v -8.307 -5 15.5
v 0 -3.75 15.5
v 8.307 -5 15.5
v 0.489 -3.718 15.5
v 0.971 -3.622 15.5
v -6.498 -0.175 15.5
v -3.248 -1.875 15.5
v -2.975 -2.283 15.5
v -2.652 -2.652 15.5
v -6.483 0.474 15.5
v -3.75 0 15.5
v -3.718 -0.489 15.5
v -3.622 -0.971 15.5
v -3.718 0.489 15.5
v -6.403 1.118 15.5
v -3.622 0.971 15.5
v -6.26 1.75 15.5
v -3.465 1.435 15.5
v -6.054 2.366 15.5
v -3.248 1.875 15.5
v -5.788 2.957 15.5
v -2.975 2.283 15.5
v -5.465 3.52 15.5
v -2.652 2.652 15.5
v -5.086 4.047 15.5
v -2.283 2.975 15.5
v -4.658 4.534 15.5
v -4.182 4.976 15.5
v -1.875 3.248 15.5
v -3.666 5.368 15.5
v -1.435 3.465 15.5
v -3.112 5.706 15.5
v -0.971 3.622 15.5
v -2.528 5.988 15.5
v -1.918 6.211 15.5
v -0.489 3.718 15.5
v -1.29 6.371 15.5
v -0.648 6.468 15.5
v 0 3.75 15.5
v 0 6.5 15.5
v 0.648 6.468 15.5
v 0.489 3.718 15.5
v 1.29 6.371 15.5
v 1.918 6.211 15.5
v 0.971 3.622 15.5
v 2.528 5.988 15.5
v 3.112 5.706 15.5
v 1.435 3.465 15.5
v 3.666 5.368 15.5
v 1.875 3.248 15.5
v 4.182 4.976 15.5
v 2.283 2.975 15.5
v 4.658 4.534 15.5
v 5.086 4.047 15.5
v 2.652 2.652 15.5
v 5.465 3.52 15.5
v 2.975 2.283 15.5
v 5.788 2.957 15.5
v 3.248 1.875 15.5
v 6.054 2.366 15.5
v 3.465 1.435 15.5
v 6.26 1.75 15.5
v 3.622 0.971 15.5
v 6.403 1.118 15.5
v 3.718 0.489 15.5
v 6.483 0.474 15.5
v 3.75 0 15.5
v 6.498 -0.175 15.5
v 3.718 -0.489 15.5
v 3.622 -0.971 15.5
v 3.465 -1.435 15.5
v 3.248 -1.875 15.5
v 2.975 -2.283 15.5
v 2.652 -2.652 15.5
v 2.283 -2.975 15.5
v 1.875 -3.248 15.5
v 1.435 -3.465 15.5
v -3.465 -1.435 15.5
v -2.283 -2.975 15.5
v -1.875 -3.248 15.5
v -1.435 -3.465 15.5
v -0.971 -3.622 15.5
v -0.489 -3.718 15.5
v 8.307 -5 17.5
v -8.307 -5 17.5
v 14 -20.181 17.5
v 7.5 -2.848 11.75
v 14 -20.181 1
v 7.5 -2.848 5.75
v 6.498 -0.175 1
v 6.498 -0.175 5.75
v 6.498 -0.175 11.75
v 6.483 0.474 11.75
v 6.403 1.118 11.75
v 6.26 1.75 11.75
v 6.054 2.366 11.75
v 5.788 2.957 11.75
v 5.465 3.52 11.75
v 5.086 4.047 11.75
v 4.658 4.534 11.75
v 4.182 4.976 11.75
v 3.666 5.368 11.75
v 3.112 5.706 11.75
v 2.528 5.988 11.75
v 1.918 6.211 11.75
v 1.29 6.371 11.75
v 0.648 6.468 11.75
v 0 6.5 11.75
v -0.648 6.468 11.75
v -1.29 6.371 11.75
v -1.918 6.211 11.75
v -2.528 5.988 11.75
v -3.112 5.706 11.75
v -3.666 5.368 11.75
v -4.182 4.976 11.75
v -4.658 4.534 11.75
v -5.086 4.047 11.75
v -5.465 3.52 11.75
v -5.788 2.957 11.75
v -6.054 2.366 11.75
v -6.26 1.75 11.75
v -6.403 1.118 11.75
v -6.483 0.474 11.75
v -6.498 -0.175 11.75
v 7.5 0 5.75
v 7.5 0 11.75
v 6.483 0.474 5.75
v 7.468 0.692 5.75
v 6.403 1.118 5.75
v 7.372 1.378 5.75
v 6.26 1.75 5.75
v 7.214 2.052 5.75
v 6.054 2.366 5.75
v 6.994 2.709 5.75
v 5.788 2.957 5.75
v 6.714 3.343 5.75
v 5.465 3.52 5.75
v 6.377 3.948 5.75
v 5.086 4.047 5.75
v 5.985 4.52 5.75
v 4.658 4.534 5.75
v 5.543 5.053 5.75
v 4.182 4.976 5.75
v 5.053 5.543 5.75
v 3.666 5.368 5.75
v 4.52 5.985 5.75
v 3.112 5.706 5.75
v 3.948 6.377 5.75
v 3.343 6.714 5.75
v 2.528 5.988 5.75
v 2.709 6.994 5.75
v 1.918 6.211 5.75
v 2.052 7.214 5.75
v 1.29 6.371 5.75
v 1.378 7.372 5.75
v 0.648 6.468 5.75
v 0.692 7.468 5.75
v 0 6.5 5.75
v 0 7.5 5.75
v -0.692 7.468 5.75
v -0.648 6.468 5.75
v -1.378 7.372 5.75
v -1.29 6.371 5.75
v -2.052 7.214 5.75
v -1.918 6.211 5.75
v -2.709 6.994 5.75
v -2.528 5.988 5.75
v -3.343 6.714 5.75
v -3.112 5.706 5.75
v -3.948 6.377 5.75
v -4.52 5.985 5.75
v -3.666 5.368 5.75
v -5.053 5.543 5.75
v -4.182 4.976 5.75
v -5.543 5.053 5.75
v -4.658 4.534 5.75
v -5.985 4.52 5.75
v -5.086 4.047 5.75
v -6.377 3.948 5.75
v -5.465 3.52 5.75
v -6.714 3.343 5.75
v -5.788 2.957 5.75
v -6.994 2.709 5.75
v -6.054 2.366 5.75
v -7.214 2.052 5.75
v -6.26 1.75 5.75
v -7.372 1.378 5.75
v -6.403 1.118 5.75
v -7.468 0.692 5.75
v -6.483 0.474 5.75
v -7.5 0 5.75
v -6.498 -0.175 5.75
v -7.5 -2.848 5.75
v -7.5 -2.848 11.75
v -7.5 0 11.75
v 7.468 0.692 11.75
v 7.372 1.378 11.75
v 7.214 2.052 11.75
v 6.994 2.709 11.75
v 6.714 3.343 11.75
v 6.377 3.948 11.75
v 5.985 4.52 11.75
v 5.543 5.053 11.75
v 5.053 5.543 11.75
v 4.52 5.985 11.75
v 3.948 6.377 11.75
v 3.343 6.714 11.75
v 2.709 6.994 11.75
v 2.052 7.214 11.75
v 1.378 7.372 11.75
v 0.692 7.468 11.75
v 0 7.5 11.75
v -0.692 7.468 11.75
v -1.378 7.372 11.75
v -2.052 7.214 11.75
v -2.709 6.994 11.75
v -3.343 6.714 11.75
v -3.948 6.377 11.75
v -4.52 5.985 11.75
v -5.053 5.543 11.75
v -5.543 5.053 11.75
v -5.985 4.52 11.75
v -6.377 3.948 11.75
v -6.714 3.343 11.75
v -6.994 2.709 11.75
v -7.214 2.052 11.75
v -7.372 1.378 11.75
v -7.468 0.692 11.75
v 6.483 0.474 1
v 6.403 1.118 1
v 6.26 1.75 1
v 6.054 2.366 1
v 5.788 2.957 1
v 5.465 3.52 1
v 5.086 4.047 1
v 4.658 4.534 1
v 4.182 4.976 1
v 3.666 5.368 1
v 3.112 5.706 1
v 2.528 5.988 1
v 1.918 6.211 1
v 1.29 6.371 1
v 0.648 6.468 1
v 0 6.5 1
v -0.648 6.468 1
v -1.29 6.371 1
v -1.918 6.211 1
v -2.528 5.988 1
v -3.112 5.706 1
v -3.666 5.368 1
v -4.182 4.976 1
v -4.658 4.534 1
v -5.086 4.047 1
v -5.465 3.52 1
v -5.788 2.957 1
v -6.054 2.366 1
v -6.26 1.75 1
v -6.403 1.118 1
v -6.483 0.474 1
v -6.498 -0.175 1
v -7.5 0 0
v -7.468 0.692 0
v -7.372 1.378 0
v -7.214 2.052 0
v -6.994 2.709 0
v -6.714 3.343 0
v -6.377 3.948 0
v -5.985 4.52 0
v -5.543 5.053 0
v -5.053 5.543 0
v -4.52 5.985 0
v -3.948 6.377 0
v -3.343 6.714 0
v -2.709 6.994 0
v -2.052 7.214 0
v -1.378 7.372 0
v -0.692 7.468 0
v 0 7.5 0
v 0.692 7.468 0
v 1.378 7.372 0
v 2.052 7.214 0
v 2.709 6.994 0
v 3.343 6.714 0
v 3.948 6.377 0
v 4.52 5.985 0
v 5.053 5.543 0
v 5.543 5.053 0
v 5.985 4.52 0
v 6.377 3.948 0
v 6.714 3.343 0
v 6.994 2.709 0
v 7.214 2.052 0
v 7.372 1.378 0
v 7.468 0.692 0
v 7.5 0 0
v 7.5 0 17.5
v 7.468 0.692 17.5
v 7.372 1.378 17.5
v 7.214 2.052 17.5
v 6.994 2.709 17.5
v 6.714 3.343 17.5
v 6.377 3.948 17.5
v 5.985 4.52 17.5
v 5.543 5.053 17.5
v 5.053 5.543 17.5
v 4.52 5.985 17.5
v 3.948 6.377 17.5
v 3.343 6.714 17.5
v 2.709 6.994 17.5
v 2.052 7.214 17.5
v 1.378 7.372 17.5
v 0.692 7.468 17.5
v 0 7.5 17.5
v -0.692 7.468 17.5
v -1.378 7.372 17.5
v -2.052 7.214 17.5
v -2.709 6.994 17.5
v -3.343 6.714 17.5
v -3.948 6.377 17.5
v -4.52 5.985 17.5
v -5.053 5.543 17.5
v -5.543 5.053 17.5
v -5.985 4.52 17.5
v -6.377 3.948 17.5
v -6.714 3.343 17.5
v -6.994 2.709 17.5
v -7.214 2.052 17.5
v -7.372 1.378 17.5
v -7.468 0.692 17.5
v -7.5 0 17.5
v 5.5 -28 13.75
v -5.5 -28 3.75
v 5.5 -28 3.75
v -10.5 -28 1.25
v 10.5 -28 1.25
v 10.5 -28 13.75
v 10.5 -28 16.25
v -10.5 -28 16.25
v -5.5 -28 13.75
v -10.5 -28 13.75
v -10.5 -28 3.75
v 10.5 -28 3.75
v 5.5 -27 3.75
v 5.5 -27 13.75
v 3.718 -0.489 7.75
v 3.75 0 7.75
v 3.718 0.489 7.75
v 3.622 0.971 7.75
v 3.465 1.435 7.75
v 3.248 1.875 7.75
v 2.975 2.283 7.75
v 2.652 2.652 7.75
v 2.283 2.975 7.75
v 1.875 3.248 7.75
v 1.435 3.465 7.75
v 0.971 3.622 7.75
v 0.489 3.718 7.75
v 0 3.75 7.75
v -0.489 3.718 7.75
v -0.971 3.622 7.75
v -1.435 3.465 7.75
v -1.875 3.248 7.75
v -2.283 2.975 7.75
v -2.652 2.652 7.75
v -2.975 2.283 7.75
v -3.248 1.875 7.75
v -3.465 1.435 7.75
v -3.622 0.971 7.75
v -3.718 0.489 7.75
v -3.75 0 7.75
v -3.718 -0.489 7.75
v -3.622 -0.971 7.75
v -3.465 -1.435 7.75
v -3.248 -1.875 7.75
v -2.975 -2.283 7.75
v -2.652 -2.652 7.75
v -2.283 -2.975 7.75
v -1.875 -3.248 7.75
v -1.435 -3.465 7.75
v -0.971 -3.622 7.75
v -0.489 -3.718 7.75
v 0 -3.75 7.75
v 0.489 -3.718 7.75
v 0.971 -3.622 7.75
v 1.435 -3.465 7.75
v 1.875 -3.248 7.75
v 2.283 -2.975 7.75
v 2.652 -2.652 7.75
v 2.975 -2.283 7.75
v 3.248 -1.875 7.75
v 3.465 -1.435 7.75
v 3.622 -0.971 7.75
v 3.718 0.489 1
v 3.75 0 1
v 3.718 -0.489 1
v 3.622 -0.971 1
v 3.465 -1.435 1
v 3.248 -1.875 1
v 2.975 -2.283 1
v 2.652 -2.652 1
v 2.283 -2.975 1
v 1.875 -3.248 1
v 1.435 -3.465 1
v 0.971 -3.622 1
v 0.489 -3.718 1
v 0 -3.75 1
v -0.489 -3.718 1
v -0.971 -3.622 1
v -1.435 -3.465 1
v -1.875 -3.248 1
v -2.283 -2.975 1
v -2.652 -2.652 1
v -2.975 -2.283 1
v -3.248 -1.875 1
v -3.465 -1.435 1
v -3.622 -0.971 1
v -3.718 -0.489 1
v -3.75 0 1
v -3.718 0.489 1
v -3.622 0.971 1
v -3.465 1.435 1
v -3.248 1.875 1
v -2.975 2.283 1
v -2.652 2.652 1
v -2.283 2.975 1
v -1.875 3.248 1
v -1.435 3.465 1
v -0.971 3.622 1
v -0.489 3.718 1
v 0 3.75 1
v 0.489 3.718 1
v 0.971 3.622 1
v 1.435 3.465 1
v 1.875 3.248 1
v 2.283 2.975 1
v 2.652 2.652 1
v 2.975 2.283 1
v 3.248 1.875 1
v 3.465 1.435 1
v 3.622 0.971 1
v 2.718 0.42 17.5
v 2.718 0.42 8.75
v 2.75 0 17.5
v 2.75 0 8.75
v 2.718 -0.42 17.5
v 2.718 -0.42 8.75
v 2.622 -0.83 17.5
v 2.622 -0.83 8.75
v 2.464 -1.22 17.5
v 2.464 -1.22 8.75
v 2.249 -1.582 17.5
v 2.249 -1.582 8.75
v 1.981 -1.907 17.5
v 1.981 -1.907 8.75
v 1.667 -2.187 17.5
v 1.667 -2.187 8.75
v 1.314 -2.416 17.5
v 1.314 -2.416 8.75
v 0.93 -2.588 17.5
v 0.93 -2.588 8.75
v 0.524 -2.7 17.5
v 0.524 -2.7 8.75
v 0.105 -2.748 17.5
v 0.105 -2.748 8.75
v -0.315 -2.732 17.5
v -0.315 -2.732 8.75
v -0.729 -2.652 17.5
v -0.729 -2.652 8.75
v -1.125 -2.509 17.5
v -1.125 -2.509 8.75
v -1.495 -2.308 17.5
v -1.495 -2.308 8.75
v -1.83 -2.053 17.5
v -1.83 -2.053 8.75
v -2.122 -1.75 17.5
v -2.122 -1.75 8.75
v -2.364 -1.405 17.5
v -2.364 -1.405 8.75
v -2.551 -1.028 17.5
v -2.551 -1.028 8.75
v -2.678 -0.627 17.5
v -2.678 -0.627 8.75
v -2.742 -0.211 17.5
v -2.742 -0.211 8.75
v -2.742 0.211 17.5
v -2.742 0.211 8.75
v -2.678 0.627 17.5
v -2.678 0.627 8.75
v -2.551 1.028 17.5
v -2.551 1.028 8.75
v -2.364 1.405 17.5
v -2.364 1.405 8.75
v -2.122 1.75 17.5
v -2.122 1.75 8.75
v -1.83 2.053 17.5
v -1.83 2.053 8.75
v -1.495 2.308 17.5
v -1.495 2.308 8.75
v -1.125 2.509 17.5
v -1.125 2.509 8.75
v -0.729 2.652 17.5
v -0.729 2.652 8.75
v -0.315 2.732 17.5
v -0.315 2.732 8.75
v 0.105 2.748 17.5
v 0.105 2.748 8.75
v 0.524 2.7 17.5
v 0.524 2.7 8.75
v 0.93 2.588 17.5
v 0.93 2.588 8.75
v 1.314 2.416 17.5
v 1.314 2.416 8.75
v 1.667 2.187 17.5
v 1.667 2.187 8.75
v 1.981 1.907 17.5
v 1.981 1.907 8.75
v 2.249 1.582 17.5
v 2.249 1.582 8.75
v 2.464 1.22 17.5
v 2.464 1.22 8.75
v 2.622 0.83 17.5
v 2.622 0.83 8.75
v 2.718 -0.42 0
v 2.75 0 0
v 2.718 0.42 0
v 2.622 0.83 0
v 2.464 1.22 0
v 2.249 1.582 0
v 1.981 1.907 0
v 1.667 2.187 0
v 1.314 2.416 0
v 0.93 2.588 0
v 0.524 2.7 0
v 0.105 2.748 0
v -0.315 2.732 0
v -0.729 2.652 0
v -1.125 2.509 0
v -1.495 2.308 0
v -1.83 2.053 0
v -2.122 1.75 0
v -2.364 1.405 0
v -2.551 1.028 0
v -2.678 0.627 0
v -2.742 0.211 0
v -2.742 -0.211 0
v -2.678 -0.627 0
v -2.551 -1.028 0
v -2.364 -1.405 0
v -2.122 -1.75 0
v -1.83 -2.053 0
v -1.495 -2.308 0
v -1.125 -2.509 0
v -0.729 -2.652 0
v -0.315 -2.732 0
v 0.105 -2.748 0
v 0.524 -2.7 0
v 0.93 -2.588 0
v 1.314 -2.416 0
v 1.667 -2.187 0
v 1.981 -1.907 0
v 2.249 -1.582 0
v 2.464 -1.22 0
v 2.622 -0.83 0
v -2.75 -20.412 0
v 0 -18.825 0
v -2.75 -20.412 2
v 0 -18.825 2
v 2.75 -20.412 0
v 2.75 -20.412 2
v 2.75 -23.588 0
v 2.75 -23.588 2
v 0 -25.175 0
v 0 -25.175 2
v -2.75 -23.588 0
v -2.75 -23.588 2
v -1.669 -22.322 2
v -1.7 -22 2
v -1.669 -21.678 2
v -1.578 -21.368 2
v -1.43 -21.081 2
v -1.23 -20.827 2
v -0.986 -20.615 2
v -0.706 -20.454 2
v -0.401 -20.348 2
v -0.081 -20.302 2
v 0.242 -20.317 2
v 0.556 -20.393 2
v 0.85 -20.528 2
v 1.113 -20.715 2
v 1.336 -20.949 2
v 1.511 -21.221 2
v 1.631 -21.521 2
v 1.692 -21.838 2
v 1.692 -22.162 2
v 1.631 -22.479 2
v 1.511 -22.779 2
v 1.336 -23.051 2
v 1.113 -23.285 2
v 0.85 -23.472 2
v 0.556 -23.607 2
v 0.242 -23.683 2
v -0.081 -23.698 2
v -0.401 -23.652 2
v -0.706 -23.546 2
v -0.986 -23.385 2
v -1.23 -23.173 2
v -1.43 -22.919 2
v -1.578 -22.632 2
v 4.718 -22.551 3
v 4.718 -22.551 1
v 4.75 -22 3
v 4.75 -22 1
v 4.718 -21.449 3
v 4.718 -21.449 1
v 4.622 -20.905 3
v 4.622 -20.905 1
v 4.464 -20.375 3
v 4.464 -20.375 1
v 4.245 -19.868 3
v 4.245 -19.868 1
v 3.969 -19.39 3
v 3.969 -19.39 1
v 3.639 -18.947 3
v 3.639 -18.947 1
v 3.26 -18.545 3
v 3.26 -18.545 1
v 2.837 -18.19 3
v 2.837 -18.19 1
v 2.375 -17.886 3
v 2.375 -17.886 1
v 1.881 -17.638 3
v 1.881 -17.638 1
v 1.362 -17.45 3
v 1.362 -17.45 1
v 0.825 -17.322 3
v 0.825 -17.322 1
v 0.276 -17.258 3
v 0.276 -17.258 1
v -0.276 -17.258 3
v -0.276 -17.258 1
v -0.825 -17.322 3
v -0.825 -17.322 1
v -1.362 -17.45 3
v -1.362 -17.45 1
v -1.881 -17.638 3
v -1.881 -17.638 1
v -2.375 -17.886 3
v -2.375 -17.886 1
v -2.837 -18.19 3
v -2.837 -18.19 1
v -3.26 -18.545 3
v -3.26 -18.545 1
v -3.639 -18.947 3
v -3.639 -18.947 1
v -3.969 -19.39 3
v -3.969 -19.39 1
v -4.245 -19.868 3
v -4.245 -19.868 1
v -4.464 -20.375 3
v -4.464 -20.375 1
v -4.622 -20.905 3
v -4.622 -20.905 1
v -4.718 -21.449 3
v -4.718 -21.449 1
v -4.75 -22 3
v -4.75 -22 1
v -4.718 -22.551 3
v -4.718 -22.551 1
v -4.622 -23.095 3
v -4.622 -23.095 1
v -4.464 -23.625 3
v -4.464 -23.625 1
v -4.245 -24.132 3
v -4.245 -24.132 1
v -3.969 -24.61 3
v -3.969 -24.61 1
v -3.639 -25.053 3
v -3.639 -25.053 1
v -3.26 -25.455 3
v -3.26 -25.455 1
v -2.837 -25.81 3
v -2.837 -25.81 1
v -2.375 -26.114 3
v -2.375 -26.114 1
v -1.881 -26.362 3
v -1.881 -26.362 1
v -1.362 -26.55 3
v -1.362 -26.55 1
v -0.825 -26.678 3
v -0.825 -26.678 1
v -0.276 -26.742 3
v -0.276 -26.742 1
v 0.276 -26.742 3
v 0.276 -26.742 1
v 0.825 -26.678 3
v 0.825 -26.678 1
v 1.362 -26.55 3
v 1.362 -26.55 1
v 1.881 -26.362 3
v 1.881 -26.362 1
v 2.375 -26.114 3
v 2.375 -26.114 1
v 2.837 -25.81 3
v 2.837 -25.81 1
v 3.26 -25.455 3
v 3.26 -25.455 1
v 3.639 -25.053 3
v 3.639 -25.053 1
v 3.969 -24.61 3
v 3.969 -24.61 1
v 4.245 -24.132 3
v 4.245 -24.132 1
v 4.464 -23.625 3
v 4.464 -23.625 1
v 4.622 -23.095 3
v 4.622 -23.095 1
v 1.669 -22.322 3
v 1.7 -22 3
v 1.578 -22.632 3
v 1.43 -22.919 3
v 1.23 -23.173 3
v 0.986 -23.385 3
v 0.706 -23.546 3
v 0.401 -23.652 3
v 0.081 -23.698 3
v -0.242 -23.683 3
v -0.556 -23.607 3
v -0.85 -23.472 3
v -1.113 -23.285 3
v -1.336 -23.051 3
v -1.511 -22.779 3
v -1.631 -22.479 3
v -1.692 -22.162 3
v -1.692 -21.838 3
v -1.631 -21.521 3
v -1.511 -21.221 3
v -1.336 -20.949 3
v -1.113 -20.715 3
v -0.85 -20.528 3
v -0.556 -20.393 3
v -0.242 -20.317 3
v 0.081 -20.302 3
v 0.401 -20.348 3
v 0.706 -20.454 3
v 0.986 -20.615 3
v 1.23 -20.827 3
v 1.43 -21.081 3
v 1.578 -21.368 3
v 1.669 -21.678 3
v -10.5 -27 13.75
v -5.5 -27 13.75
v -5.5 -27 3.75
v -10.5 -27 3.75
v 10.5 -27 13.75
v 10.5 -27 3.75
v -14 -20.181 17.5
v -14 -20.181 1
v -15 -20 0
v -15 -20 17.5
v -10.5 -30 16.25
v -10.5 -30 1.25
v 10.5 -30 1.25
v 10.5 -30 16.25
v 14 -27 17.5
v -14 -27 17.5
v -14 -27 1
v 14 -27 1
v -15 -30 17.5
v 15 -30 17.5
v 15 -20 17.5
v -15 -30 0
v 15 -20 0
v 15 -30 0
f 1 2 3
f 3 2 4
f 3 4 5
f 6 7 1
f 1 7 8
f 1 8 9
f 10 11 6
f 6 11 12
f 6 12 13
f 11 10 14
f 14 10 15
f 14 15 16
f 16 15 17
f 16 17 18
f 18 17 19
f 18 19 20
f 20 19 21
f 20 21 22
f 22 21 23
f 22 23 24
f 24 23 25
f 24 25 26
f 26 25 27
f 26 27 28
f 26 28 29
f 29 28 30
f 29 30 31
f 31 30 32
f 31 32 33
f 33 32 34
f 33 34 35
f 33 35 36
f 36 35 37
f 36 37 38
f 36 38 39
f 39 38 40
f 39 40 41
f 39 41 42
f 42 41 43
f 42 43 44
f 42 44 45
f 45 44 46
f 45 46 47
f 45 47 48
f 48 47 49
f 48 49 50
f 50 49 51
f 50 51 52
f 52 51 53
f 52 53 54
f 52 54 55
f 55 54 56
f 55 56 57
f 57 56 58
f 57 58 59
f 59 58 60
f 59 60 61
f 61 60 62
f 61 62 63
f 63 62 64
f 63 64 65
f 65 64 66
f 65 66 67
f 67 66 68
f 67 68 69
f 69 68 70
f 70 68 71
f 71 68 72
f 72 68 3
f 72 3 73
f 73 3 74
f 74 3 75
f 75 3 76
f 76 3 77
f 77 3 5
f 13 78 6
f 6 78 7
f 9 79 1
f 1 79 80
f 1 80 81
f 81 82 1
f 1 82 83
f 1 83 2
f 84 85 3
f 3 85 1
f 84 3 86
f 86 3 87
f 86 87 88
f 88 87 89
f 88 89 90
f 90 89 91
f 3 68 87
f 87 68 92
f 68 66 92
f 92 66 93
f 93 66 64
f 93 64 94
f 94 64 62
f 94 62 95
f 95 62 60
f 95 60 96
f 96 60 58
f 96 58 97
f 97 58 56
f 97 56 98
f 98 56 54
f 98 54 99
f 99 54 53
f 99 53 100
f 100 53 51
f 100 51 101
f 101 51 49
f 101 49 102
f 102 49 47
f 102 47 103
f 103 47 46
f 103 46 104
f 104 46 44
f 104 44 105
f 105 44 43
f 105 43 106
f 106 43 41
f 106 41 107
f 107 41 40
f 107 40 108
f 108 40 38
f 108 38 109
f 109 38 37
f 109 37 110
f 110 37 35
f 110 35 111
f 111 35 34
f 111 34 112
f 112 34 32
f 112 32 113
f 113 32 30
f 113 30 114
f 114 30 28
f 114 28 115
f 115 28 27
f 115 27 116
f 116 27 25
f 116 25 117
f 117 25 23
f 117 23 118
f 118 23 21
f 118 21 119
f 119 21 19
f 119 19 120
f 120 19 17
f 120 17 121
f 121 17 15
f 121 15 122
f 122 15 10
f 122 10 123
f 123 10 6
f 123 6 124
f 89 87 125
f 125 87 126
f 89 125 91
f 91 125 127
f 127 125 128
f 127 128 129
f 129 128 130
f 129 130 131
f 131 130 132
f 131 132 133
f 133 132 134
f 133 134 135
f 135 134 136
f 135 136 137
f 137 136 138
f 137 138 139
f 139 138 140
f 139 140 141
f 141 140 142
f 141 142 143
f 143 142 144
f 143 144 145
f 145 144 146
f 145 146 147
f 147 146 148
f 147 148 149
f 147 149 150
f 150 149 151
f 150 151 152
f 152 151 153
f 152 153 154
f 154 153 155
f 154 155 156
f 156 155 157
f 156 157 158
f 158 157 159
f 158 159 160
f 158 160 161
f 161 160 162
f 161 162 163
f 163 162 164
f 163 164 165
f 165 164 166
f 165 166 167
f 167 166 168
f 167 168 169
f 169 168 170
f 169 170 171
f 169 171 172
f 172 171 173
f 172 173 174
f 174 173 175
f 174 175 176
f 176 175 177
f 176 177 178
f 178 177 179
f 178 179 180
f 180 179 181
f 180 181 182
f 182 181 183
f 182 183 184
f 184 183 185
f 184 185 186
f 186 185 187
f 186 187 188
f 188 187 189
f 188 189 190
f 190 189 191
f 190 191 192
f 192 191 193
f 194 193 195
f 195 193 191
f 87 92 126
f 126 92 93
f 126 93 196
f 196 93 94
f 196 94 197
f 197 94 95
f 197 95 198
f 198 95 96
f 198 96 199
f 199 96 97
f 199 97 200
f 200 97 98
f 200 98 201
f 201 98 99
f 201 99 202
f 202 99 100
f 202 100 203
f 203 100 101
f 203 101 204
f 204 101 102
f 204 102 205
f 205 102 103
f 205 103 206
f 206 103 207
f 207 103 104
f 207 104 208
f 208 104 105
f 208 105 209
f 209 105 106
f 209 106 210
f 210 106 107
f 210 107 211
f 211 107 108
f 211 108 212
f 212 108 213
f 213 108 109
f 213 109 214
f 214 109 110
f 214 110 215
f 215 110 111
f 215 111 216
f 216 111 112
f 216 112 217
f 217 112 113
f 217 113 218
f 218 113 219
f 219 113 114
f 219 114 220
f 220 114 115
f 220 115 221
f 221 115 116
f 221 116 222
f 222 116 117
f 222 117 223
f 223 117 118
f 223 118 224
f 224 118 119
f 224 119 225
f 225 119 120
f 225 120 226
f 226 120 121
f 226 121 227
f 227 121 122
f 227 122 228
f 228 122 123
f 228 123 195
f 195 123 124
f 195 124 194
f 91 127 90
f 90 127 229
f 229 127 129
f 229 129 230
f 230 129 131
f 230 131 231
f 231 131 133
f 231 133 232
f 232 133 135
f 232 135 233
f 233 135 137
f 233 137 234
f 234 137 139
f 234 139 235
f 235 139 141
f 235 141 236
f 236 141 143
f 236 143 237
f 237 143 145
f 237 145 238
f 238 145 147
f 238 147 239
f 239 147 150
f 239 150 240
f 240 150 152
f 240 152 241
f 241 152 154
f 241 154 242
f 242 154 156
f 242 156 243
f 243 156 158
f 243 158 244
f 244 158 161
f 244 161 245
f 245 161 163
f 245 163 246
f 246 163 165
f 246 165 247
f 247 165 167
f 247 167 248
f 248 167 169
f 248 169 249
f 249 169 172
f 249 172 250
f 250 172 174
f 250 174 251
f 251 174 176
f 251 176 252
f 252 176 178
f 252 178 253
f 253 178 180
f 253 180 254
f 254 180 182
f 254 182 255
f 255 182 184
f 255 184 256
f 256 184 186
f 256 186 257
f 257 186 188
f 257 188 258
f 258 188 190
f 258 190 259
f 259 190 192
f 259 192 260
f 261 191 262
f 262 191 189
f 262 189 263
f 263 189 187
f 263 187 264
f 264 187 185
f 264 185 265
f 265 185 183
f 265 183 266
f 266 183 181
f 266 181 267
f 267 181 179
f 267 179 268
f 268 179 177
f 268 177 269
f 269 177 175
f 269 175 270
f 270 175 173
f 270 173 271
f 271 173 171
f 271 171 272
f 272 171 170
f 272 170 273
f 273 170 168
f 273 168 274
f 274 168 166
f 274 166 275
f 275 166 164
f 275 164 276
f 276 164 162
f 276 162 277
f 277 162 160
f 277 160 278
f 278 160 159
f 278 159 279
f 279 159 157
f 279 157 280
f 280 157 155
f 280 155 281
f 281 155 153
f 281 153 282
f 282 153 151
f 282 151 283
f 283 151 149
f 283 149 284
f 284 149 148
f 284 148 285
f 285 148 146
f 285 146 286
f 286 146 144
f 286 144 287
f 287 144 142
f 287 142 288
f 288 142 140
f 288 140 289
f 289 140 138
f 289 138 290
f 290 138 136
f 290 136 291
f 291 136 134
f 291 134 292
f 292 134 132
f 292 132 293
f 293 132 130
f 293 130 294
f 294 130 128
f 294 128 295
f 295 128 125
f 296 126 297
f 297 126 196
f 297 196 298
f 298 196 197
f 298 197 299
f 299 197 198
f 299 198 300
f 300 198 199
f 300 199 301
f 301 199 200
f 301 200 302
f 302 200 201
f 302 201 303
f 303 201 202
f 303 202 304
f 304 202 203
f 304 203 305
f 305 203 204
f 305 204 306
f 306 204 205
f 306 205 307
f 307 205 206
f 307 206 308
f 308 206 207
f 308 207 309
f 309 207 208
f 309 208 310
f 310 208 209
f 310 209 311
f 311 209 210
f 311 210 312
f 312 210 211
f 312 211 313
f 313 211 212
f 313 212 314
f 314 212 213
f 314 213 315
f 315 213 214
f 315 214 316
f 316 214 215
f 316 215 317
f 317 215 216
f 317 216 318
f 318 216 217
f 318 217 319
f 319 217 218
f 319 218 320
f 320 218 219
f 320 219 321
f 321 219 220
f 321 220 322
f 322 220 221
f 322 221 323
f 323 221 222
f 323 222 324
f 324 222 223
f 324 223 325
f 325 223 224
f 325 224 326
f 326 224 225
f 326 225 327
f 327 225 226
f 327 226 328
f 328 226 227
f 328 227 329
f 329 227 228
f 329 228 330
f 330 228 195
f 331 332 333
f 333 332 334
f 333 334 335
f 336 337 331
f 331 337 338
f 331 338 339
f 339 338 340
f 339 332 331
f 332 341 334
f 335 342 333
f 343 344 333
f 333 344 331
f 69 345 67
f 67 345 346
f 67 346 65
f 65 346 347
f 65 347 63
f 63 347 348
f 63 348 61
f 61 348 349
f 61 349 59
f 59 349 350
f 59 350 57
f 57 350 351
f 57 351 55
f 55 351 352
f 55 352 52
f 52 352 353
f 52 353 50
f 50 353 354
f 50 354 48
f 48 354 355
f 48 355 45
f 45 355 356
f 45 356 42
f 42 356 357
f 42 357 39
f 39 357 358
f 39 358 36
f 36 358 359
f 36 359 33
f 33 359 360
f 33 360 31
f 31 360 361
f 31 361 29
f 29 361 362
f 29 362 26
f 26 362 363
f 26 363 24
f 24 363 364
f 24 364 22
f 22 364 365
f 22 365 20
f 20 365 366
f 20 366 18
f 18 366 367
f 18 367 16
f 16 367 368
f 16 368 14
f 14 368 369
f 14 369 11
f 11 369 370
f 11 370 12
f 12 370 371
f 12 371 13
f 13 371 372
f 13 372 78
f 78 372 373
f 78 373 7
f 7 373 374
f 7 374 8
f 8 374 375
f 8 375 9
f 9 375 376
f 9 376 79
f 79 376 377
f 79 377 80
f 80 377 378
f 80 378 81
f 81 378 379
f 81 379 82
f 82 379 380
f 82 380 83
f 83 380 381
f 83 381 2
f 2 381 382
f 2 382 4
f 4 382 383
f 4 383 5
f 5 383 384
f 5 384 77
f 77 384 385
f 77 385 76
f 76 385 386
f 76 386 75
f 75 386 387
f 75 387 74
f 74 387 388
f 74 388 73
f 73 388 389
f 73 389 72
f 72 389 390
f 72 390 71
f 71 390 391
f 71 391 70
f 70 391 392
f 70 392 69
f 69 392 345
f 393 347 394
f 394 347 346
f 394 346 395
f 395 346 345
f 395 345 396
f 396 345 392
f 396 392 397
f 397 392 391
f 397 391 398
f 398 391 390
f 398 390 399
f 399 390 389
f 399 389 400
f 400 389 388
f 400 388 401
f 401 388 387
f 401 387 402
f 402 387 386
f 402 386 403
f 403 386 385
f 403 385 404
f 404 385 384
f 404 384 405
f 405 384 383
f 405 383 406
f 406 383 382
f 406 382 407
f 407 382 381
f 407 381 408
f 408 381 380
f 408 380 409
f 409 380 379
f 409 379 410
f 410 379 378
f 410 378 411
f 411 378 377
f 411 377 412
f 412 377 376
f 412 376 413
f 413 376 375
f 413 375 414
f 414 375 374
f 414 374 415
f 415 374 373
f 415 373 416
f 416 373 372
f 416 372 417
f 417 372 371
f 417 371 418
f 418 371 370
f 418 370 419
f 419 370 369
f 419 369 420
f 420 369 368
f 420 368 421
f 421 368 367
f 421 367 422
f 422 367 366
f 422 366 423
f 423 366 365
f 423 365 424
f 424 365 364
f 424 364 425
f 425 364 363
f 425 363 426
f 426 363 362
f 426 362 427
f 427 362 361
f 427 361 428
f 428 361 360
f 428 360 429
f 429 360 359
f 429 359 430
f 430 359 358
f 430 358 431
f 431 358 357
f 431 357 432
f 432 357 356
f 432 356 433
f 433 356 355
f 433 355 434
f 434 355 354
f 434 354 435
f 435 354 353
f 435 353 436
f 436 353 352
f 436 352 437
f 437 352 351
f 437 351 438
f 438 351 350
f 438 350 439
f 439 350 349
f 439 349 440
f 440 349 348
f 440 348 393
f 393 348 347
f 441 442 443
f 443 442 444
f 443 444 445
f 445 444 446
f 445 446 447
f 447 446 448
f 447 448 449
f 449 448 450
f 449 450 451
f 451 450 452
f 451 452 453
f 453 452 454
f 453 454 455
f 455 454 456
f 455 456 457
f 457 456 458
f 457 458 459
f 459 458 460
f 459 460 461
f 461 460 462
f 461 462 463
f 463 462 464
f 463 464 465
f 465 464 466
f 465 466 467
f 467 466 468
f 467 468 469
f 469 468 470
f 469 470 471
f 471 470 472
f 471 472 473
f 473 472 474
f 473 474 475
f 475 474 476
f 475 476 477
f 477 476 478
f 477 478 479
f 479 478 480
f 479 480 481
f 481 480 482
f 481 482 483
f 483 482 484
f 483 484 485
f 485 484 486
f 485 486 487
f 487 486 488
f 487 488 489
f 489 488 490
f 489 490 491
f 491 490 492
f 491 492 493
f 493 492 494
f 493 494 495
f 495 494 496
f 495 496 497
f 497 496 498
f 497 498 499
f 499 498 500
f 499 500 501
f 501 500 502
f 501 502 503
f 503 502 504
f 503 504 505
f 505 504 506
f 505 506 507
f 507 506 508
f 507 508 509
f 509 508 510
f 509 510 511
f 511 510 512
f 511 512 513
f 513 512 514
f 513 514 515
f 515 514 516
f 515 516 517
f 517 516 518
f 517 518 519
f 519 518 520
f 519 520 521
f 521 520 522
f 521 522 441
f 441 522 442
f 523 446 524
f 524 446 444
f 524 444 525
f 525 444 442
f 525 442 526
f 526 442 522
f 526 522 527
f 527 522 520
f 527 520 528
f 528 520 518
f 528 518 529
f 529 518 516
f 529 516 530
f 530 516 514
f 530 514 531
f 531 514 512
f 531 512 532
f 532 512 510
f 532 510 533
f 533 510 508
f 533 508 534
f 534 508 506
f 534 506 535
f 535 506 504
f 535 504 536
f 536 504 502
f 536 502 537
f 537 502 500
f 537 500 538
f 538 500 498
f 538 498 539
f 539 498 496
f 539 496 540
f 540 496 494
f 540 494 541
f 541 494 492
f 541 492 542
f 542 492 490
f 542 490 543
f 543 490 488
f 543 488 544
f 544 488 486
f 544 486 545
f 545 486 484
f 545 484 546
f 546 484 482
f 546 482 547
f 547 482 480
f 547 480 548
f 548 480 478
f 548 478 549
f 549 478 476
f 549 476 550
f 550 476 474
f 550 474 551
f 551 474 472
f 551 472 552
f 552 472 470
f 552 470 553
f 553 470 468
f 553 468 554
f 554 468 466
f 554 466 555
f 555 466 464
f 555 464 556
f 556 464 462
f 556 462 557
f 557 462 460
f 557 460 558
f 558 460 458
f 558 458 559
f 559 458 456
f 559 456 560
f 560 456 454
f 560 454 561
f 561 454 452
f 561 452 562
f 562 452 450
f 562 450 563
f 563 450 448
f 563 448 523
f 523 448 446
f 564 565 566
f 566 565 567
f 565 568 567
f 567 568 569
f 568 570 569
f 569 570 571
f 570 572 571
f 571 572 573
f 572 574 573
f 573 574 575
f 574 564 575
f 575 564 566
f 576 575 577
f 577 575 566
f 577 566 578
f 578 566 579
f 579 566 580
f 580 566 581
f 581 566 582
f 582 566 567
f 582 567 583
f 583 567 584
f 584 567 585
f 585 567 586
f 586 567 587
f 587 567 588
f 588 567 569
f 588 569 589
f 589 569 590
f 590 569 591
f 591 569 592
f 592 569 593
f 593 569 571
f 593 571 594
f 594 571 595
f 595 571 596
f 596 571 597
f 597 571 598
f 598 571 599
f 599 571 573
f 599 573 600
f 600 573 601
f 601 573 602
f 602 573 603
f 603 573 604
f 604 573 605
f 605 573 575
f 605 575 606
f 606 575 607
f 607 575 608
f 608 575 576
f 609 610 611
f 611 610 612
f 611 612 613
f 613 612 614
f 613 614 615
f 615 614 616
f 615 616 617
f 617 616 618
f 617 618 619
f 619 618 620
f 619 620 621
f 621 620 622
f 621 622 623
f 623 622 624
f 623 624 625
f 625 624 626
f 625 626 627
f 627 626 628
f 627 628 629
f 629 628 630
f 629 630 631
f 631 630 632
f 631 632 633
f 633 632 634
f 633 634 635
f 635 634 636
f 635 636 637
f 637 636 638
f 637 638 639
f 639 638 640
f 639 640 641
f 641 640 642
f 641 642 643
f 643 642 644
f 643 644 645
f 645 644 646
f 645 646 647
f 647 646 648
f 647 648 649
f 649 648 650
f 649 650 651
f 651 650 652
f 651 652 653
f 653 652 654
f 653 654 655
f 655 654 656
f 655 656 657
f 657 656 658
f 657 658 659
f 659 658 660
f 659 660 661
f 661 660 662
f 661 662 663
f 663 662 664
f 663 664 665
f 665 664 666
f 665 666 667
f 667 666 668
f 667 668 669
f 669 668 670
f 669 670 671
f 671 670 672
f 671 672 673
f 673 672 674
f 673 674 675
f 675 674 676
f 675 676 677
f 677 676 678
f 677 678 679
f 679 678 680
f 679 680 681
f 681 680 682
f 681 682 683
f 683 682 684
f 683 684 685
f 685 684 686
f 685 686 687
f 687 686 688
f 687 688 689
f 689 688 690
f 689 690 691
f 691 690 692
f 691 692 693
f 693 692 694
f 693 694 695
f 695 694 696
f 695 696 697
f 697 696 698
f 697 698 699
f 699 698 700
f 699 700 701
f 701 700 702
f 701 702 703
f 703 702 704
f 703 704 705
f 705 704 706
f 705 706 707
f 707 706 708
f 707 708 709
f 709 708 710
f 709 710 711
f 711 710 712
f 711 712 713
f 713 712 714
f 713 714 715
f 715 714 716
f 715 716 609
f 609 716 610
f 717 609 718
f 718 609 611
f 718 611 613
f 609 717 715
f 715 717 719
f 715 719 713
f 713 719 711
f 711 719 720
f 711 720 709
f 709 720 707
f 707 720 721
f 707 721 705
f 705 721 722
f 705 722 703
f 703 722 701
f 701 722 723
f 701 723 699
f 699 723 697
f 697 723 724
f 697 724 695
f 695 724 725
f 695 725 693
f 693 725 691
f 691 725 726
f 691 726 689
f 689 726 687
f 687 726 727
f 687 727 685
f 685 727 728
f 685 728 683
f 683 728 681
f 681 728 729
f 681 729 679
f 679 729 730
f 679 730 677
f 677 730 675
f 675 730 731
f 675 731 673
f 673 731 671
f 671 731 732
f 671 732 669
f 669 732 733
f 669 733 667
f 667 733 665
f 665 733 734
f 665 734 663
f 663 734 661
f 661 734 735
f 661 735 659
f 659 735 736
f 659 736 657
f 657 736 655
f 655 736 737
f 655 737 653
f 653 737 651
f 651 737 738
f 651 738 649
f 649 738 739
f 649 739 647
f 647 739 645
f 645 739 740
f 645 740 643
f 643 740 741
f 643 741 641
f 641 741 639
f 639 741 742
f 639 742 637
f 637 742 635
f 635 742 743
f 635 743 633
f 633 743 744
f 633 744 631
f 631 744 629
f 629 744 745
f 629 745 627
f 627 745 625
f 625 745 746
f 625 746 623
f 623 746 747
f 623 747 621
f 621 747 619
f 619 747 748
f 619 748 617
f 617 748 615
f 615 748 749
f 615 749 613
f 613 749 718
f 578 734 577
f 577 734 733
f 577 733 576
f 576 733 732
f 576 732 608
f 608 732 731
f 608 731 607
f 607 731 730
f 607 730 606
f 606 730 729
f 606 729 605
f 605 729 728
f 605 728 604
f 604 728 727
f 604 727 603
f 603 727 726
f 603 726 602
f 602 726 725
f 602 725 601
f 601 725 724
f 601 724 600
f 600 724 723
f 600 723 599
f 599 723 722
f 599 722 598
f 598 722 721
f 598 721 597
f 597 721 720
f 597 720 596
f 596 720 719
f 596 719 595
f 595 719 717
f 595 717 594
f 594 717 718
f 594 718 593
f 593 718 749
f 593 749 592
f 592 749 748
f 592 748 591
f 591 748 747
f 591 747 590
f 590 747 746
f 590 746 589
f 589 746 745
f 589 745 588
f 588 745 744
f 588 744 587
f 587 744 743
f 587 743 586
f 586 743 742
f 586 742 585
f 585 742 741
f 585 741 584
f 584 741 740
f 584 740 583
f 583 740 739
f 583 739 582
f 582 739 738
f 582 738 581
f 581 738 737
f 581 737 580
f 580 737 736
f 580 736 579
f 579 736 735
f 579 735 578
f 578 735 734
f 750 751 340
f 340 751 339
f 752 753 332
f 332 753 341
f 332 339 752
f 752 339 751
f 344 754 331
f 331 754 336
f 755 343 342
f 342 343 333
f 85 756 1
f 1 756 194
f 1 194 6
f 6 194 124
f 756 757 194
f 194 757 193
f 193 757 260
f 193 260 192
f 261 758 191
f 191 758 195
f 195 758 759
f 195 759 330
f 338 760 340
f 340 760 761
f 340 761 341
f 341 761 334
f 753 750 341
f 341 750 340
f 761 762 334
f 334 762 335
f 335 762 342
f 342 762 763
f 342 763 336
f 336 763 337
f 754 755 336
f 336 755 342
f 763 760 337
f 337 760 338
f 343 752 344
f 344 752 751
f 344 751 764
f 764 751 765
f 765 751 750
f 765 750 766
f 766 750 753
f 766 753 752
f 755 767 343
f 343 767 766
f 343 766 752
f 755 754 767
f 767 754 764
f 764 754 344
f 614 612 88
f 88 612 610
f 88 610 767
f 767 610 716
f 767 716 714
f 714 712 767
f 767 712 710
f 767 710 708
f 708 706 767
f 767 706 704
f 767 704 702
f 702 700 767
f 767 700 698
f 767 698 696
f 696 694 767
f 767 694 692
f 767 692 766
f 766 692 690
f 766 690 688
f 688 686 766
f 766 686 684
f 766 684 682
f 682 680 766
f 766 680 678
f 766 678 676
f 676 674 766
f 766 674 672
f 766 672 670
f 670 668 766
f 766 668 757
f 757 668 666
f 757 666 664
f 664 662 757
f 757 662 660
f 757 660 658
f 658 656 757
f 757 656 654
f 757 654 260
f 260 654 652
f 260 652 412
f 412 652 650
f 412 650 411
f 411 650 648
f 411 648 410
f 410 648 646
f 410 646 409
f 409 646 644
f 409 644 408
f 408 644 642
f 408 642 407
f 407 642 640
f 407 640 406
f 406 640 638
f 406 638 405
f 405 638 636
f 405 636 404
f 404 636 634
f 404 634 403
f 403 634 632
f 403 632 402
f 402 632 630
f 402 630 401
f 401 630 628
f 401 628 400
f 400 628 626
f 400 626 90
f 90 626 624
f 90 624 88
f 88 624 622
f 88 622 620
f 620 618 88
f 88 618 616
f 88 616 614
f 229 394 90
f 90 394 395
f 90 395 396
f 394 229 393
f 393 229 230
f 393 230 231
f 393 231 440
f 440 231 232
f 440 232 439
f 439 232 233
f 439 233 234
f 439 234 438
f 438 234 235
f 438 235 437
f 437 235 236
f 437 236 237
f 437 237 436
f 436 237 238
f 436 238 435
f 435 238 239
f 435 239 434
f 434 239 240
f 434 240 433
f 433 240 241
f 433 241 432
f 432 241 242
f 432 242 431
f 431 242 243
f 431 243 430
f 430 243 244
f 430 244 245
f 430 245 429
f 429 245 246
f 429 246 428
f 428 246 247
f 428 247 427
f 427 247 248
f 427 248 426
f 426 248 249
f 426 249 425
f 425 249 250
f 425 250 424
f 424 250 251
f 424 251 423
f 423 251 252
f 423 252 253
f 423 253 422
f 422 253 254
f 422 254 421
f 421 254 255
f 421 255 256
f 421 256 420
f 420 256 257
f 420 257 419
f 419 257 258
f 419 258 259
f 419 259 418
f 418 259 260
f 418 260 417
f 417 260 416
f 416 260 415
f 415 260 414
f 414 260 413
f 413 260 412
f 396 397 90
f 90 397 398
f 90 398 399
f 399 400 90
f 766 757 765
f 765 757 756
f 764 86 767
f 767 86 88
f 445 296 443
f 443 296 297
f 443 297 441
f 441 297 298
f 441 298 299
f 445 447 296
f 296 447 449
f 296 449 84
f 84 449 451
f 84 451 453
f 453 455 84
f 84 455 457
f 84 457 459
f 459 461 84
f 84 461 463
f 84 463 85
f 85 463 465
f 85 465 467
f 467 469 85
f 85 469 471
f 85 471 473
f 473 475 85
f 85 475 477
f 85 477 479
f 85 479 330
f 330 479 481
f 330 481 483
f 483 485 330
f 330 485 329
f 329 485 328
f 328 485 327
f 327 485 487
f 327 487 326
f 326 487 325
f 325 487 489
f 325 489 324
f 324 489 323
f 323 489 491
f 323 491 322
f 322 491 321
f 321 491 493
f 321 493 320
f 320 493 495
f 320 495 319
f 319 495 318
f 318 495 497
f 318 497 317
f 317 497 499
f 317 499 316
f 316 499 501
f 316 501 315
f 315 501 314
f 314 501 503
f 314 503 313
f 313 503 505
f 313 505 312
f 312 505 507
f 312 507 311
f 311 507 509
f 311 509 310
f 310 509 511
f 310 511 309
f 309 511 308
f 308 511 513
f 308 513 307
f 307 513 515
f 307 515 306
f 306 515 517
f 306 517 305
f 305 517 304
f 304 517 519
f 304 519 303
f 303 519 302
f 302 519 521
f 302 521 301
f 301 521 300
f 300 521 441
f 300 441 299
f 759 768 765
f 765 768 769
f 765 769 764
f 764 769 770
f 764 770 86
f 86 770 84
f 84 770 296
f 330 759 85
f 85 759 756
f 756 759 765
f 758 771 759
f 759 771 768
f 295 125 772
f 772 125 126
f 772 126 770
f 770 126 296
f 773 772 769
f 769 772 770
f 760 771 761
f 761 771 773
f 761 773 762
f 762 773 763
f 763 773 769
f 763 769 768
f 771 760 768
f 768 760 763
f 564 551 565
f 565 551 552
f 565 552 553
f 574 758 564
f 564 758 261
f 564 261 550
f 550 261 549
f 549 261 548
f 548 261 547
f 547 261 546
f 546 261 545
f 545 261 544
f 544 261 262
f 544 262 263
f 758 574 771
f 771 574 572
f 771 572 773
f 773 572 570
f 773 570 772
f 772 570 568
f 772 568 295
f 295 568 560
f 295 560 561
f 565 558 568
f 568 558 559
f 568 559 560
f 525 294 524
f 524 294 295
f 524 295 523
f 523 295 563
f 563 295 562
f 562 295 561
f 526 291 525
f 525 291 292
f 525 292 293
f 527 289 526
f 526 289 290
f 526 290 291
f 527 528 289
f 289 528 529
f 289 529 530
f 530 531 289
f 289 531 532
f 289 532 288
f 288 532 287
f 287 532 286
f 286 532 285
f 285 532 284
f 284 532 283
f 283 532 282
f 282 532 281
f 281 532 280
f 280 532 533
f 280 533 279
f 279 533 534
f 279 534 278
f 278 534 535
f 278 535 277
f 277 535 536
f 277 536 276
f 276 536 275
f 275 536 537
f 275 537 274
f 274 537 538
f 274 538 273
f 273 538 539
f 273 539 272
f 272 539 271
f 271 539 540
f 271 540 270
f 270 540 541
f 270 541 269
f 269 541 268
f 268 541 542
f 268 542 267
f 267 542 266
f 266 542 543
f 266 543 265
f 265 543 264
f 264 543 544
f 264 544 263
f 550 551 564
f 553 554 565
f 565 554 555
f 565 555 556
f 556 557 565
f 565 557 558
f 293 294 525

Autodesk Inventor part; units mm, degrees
ref_plane "YZ Plane" through (0, 0, 0) normal (1, 0, 0) x (0, 1, 0)
sketch "Sketch1" plane through (0, 0, 0) normal (0, 0, 1) x (1, 0, 0)
  arc A0 (7.5, 0) -> (-7.5, 0) centre (0, 0) ccw
  line L0 (-7.5, 0) -> (-15, -20)
  line L1 (7.5, 0) -> (15, -20)
  line L2 (-7.5, 0) -> (7.5, 0) construction
  line L3 (-15, -30) -> (15, -30)
  line L4 (-15, -30) -> (15, -30) construction
  circle A1 centre (0, 0) radius 2.75
  line L5 (-15, -20) -> (-15, -30)
  line L6 (15, -20) -> (15, -30)
  dimension "d0" = 15
  dimension "d8" = 5.5
  dimension "d67" = 30
  dimension "d68" = 30
  dimension "d96" = 10
extrude "Extrusion1" add sketch "Sketch1" along normal blind 17.5
shell "Shell2" thickness 1 removed faces 1 at (0.1105, -14.2433, 17.5)
thicken "Thicken5" operation add thickness 2 both sides no extend neighbours no toward (0, 1, 0) faces at (-4.6667, -29, 6.5)
sketch "Sketch12" plane through (-15, -30, 0) normal (0, -1, 0) x (1, 0, 0)
  line L0 (0, 0) -> (30, 0) projected
  line L1 (30, 0) -> (30, 17.5) projected
  line L2 (0, 17.5) -> (30, 17.5) projected
  line L3 (0, 0) -> (0, 17.5) projected
  line L4 (25.5, 16.25) -> (4.5, 16.25)
  line L5 (4.5, 16.25) -> (4.5, 1.25)
  line L6 (4.5, 1.25) -> (25.5, 1.25)
  line L7 (25.5, 1.25) -> (25.5, 16.25)
  line L8 (25.5, 16.25) -> (25.5, 17.5)
  line L9 (21.4976, 17.5) -> (29, 17.5) projected
  line L10 (25.5, 1.25) -> (25.5, 0)
  line L11 (0, 0) -> (30, 0) projected
  point P0 (15, 0)
  dimension "d74" = 21
  dimension "d75" = 15
  dimension "d77" = 4.5
  dimension "d78" = 4.5
  dimension "d79" = 1.25
extrude "Extrusion6" cut sketch "Sketch12" against normal blind 2 contours L6 L5 L4 L7
sketch "Sketch13" plane through (-15, -28, 0) normal (0, -1, 0) x (1, 0, 0)
  line L0 (25.5, 16.25) -> (25.5, 1.25) projected
  line L1 (4.5, 1.25) -> (4.5, 16.25) projected
  line L2 (4.5, 13.75) -> (9.5, 13.75)
  line L3 (9.5, 13.75) -> (9.5, 3.75)
  line L4 (9.5, 3.75) -> (4.5, 3.75)
  line L5 (4.5, 3.75) -> (4.5, 13.75)
  line L6 (4.5, 16.25) -> (25.5, 16.25) projected
  line L7 (25.5, 1.25) -> (4.5, 1.25) projected
  line L8 (25.5, 13.75) -> (20.5, 13.75)
  line L9 (20.5, 13.75) -> (20.5, 3.75)
  line L10 (20.5, 3.75) -> (25.5, 3.75)
  line L11 (25.5, 3.75) -> (25.5, 13.75)
  point P0 (15, 0)
  dimension "d82" = 5
  dimension "d83" = 10
  dimension "d84" = 2.5
  dimension "d85" = 2.5
  dimension "d86" = 5
  dimension "d87" = 10
  dimension "d88" = 2.5
  dimension "d89" = 2.5
extrude "Extrusion7" cut sketch "Sketch13" against normal up to next contours L0 L10 L9 L8 | L2 L3 L4 L1
sketch "Sketch14" plane through (-15, -28, 0) normal (0, -1, 0) x (1, 0, 0)
  line L0 (4.5, 16.25) -> (25.5, 16.25) projected
  line L1 (25.5, 16.25) -> (25.5, 1.25) projected
  line L2 (4.5, 1.25) -> (4.5, 16.25) projected
  line L3 (25.5, 1.25) -> (4.5, 1.25) projected
  line L4 (15, 1.25) -> (15, 16.25) construction
  line L5 (25.5, 8.75) -> (4.5, 8.75) construction
  line L6 (4.5, 13.75) -> (4.5, 3.75) projected
  point P0 (15, 0)
  point P1 (15, 9.5)
ref_plane "Work Plane2" through (0, -7.5, 0) normal (0, 1, 0) x (-1, 0, 0)
sketch "Sketch16" plane through (0, 0, 1) normal (0, 0, 1) x (1, 0, 0)
  line L0 (14, -27) -> (-14, -27) projected
  line L1 (0, -27) -> (0, -16.6699) construction
  point P0 (0, 0)
  point P1 (0, -22)
  point P2 (-0.2812, -15.3392)
  point P3 (3.9903, -15.1005)
  dimension "d97" = 5
hole "Hole3" at (0, -22, 1) direction (0, 0, -1) diameter 3.4 depth 1 clearance for "Hex Head Cap Screw ISO 24017" size "M3" standard "ISO"
sketch "Sketch17" plane through (0, 0, 1) normal (0, 0, 1) x (1, 0, 0)
  circle A0 centre (0, -22) radius 1.7 projected
  circle A1 centre (0, -22) radius 4.75
  point P0 (0, 0)
  dimension "d105" = 9.5
extrude "Extrusion9" add sketch "Sketch17" along normal blind 2
sketch "Sketch18" plane through (0, 0, 0) normal (0, 0, -1) x (-1, 0, 0)
  circle A0 centre (0, -22) radius 1.7 projected
  circle A1 centre (0, -22) radius 2.75 construction
  line L0 (2.75, -20.4123) -> (2.75, -23.5877)
  line L1 (2.75, -23.5877) -> (0, -25.1754)
  line L2 (0, -25.1754) -> (-2.75, -23.5877)
  line L3 (-2.75, -23.5877) -> (-2.75, -20.4123)
  line L4 (-2.75, -20.4123) -> (0, -18.8246)
  line L5 (0, -18.8246) -> (2.75, -20.4123)
  point P0 (0, 0)
  dimension "d108" = 5.5
extrude "Extrusion10" cut sketch "Sketch18" against normal blind 2
ref_plane "Work Plane3" through (0, 7.5, 0) normal (0, 1, 0) x (-1, 0, 0)
sketch "Sketch19" plane through (0, 7.5, 0) normal (0, 1, 0) x (-1, 0, 0)
  line L0 (-14, 17.5) -> (14, 17.5) projected
  line L1 (0, 17.5) -> (0, 0) construction
  line L2 (-7.5, 11.75) -> (7.5, 11.75)
  line L3 (7.5, 11.75) -> (7.5, 5.75)
  line L4 (7.5, 5.75) -> (-7.5, 5.75)
  line L5 (-7.5, 5.75) -> (-7.5, 11.75)
  line L6 (-7.5, 11.75) -> (7.5, 5.75) construction
  line L7 (7.5, 11.75) -> (-7.5, 5.75) construction
  point P0 (0, 8.75)
  dimension "d111" = 15
  dimension "d112" = 6
extrude "Extrusion11" cut sketch "Sketch19" against normal up to next
sketch "Sketch22" plane through (0, 0, 17.5) normal (0, 0, 1) x (1, 0, 0)
  line L0 (-8.307, -5) -> (8.307, -5)
  line L1 (6.4976, -0.175) -> (14, -20.1813) projected
  line L2 (-14, -20.1813) -> (-6.4976, -0.175) projected
  arc A0 (6.4976, -0.175) -> (-6.4976, -0.175) centre (0, 0) ccw projected
  circle A1 centre (0, 0) radius 2.75 projected
  dimension "d117" = 5
extrude "Extrusion13" add sketch "Sketch22" against normal blind 2
properties part number "LampeSolaire2_LedAmoviblePart 3D printed"
